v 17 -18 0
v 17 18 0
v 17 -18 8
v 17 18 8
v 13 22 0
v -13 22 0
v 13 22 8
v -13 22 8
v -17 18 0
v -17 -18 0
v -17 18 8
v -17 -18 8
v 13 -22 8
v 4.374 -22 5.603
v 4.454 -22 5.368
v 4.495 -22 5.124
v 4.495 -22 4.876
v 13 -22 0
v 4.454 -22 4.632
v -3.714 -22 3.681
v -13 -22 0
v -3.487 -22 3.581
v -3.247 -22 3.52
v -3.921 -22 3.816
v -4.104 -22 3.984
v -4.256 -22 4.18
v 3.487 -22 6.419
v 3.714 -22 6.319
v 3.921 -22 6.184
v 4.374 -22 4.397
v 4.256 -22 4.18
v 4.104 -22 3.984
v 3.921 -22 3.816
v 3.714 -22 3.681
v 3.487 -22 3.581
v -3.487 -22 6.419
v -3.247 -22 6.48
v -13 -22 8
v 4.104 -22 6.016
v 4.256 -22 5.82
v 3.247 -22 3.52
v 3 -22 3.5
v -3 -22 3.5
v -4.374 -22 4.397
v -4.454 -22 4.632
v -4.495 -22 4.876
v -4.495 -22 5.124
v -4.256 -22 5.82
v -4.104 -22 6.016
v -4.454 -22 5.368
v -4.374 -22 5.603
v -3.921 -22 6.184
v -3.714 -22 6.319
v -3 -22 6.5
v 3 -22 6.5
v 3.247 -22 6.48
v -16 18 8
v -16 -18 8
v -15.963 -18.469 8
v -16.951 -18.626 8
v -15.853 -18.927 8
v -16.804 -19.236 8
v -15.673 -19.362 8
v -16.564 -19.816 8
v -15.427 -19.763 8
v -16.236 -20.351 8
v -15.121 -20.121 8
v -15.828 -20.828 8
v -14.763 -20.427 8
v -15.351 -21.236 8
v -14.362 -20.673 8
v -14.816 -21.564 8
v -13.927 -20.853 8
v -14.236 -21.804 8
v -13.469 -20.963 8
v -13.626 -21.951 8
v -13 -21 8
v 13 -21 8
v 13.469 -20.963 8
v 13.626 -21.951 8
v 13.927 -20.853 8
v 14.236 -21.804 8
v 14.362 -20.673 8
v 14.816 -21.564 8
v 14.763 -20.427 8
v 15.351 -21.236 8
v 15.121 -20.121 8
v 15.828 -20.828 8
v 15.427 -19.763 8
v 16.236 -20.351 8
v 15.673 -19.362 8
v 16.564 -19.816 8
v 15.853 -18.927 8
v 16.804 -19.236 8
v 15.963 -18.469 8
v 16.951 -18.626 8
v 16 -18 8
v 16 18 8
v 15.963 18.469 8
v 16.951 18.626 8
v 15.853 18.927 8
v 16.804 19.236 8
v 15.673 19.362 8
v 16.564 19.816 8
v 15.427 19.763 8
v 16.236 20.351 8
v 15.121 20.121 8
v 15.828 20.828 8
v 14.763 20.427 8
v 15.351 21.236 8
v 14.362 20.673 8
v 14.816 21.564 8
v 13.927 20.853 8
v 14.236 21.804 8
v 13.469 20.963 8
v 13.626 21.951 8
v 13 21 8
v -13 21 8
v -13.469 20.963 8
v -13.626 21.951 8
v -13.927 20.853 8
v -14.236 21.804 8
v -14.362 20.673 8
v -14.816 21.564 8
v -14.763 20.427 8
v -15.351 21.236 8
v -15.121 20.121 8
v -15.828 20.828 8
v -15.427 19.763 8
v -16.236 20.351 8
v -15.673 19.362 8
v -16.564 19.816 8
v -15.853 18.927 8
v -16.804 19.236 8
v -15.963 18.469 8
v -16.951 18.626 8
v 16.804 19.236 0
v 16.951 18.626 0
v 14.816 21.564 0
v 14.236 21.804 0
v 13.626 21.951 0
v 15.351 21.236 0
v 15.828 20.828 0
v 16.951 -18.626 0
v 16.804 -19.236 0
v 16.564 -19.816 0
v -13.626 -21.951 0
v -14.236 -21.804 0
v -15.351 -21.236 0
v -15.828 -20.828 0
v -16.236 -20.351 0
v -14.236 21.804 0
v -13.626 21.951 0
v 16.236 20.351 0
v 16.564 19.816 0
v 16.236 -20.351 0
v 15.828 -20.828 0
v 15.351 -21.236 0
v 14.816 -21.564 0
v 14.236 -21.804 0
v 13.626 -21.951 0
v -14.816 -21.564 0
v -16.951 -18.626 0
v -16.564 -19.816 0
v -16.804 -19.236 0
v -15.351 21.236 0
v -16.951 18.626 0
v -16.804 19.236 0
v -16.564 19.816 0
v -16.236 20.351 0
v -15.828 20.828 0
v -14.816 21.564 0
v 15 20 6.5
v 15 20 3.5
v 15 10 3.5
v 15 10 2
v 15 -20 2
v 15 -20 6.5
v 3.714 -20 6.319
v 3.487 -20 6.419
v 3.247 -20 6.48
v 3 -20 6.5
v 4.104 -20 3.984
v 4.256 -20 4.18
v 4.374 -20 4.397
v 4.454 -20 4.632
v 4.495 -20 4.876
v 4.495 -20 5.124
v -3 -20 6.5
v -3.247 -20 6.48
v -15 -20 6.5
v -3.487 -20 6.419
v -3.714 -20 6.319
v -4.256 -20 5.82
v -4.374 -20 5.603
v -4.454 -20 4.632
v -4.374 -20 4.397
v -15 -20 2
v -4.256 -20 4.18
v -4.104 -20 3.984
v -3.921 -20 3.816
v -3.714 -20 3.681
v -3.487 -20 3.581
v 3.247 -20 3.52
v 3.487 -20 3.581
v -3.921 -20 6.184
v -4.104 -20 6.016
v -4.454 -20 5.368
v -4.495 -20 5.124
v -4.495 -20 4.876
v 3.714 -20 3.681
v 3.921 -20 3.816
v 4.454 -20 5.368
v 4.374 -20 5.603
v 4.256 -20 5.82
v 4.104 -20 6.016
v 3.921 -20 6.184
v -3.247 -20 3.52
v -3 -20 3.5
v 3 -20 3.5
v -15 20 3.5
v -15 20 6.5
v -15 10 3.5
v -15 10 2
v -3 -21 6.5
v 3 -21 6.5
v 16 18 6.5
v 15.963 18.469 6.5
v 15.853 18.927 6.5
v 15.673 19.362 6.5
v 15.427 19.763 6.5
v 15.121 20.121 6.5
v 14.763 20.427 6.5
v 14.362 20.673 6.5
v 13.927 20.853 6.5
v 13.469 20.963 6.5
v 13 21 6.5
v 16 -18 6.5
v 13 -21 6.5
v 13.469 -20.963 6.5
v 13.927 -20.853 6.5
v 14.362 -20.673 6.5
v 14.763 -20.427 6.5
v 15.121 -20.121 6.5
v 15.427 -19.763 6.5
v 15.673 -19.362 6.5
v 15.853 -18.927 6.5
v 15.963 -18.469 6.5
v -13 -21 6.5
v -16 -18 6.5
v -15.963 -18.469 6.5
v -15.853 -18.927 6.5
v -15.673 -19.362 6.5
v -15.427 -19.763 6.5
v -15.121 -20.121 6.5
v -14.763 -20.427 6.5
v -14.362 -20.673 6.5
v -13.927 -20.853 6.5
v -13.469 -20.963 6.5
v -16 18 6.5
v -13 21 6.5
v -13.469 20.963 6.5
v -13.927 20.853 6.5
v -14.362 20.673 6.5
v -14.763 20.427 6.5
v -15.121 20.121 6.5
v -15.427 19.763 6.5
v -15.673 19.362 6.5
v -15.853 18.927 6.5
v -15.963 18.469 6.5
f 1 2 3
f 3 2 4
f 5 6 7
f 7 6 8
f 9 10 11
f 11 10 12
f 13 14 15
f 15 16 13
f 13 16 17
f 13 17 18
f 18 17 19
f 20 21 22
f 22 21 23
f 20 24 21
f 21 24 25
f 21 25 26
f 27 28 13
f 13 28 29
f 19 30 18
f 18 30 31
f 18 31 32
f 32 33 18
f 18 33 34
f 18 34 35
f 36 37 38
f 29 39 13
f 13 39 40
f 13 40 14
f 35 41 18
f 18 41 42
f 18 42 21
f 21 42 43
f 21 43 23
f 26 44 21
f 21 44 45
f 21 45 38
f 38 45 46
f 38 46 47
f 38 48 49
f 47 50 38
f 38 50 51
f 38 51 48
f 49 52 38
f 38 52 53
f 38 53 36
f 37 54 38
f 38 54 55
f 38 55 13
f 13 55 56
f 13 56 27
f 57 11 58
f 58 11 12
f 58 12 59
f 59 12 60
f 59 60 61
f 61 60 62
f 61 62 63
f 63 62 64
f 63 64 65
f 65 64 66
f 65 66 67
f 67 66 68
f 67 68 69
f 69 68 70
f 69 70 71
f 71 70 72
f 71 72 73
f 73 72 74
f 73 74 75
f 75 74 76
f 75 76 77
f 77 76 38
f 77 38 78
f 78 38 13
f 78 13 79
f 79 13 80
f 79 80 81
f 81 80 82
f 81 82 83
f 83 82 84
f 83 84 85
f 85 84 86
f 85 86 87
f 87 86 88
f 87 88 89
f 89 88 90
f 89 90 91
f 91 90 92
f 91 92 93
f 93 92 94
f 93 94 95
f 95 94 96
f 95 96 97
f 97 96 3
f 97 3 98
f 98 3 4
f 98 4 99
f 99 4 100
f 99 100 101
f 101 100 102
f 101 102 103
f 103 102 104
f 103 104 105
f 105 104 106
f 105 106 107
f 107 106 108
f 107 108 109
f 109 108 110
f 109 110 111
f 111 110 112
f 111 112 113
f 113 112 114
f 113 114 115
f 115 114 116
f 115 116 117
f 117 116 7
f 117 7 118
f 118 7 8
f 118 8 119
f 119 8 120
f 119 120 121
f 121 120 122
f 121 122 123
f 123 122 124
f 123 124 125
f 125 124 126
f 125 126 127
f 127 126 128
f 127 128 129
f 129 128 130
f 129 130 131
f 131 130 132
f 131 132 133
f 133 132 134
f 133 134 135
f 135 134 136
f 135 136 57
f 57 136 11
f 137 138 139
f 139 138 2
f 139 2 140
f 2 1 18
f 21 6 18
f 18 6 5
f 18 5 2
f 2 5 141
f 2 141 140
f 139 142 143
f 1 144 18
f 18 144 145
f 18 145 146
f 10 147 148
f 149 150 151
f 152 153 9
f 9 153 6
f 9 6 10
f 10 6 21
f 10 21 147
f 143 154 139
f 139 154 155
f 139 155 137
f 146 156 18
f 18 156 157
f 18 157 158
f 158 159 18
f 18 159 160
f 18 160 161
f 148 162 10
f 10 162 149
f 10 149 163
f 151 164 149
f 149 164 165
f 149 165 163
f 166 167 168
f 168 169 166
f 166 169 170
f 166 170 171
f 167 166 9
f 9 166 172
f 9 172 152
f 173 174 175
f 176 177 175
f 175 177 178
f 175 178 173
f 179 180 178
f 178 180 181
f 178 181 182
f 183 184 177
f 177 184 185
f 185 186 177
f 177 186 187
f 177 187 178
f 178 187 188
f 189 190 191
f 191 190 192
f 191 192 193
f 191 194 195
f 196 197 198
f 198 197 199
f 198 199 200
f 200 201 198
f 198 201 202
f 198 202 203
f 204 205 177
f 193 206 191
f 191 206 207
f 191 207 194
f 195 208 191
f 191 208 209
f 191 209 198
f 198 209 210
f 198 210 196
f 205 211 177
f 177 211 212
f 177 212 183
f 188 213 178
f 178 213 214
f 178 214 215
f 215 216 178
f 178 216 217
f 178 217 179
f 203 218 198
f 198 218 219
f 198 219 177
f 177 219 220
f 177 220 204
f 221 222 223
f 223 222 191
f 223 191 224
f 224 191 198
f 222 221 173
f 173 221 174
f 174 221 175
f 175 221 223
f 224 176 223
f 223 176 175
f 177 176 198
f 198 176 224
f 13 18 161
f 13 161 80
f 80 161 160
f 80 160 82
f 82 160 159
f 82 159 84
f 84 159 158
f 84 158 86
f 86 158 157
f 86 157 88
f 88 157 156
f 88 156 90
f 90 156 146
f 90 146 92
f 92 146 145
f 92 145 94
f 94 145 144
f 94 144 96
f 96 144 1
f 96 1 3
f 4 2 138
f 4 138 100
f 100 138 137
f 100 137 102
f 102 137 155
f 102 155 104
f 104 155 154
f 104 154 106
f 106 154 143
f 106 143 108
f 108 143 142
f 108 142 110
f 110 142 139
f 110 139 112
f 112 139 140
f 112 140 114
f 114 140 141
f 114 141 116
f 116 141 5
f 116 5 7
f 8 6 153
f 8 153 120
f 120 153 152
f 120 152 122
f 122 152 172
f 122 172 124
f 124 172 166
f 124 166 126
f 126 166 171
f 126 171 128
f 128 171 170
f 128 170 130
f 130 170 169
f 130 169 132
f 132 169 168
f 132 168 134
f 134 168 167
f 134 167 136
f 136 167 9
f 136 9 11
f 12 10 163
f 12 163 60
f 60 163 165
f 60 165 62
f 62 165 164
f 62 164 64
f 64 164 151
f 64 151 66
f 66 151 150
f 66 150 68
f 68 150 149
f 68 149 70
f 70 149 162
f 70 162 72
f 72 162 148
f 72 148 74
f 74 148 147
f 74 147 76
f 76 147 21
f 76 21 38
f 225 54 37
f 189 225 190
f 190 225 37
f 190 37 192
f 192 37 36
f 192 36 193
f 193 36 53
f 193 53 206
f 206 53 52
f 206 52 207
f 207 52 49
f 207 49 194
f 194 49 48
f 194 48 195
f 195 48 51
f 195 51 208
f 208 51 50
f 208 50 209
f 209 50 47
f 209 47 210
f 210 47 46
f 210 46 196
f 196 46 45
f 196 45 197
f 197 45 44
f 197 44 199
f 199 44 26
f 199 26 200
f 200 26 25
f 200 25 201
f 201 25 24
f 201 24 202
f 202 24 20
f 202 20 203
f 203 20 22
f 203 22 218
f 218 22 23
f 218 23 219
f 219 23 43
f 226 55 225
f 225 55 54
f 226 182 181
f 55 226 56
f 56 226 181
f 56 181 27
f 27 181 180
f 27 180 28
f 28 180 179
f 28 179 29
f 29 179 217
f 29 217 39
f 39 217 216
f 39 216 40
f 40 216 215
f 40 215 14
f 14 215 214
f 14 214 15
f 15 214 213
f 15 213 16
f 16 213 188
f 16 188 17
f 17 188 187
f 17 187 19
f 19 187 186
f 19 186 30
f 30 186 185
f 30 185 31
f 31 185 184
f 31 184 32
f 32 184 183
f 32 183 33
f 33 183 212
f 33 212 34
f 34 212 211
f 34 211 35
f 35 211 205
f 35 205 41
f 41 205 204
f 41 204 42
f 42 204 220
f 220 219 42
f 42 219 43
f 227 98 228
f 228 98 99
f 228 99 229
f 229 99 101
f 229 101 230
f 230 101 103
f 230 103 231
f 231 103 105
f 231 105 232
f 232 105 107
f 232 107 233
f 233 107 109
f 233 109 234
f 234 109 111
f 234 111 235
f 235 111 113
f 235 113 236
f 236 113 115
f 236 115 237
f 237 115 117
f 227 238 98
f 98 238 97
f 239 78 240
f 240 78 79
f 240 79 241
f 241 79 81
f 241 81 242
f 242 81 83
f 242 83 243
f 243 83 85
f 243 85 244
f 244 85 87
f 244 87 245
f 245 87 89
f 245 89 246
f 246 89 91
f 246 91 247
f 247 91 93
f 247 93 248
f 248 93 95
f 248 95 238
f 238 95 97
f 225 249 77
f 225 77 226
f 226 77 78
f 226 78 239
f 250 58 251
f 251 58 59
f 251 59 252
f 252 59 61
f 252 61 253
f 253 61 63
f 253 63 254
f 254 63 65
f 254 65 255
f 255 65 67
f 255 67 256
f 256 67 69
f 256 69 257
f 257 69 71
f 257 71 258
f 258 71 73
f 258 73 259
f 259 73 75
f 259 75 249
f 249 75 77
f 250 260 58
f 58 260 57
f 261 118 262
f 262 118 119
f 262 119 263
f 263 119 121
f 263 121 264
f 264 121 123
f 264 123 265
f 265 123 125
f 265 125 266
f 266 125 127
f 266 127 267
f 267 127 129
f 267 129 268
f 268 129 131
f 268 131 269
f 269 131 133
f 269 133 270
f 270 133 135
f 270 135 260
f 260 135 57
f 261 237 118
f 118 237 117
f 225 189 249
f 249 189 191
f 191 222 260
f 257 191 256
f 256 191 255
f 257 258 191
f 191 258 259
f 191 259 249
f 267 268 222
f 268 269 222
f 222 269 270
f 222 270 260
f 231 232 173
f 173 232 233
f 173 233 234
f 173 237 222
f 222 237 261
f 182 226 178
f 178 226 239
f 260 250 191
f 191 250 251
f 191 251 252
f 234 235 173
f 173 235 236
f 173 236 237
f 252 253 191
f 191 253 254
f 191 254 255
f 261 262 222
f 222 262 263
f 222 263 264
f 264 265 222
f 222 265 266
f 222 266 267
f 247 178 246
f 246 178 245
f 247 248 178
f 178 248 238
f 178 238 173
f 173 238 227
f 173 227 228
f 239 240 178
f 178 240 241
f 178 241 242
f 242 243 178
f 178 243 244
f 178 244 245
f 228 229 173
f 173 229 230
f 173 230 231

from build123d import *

# Parameters (mm, degrees)
SKETCH_1_W          = 34
SKETCH_1_H          = 44
EXTRUDE_1_DEPTH     = 8
SKETCH_2_W          = 30
SKETCH_2_H          = 40
CUT_EXTRUDE_1_DEPTH = 4.5
SKETCH_3_W          = 30
SKETCH_3_H          = 30
CUT_EXTRUDE_2_DEPTH = 1.5
FILLET_1_R          = 4
CUT_EXTRUDE_3_DEPTH = 2
CUT_EXTRUDE_4_DEPTH = 1.5


with BuildPart() as part:
    # Эскиз1 → Бобышка-Вытянуть1 (new body)
    with BuildSketch(Plane.XY):
        Rectangle(SKETCH_1_W, SKETCH_1_H)
    extrude(amount=EXTRUDE_1_DEPTH)

    # Эскиз2 → Вырез-Вытянуть1 (cut)
    with BuildSketch(Plane.XY.offset(8)):
        Rectangle(SKETCH_2_W, SKETCH_2_H)
    extrude(amount=-CUT_EXTRUDE_1_DEPTH, mode=Mode.SUBTRACT)

    # Эскиз3 → Вырез-Вытянуть2 (cut)
    with BuildSketch(Plane.XY.offset(3.5)):
        with Locations((0, -5)):
            Rectangle(SKETCH_3_W, SKETCH_3_H)
    extrude(amount=-CUT_EXTRUDE_2_DEPTH, mode=Mode.SUBTRACT)

    # Скругление1
    fillet_1_edges = [part.edges().sort_by_distance(p)[0] for p in [
        (17, -22, 4),
        (-17, -22, 4),
        (-17, 22, 4),
        (17, 22, 4),
    ]]
    fillet(fillet_1_edges, radius=FILLET_1_R)

    # Эскиз4 → Вырез-Вытянуть3 (cut)
    with BuildSketch(Plane.XZ.offset(22)):
        with BuildLine():
            Line((-3, 6.5), (3, 6.5))
            ThreePointArc((3, 6.5), (4.5, 5), (3, 3.5))
            Line((3, 3.5), (-3, 3.5))
            ThreePointArc((-3, 3.5), (-4.5, 5), (-3, 6.5))
        make_face()
    extrude(amount=-CUT_EXTRUDE_3_DEPTH, mode=Mode.SUBTRACT)

    # Эскиз5 → Вырез-Вытянуть4 (cut)
    with BuildSketch(Plane.XY.offset(8)):
        with BuildLine():
            Line((-13, -21), (13, -21))
            ThreePointArc((13, -21), (15.121320344, -20.121320344), (16, -18))
            Line((16, -18), (16, 18))
            ThreePointArc((16, 18), (15.121320344, 20.121320344), (13, 21))
            Line((13, 21), (-13, 21))
            ThreePointArc((-13, 21), (-15.121320344, 20.121320344), (-16, 18))
            Line((-16, 18), (-16, -18))
            ThreePointArc((-16, -18), (-15.121320344, -20.121320344), (-13, -21))
        make_face()
    extrude(amount=-CUT_EXTRUDE_4_DEPTH, mode=Mode.SUBTRACT)


solid = part.part
